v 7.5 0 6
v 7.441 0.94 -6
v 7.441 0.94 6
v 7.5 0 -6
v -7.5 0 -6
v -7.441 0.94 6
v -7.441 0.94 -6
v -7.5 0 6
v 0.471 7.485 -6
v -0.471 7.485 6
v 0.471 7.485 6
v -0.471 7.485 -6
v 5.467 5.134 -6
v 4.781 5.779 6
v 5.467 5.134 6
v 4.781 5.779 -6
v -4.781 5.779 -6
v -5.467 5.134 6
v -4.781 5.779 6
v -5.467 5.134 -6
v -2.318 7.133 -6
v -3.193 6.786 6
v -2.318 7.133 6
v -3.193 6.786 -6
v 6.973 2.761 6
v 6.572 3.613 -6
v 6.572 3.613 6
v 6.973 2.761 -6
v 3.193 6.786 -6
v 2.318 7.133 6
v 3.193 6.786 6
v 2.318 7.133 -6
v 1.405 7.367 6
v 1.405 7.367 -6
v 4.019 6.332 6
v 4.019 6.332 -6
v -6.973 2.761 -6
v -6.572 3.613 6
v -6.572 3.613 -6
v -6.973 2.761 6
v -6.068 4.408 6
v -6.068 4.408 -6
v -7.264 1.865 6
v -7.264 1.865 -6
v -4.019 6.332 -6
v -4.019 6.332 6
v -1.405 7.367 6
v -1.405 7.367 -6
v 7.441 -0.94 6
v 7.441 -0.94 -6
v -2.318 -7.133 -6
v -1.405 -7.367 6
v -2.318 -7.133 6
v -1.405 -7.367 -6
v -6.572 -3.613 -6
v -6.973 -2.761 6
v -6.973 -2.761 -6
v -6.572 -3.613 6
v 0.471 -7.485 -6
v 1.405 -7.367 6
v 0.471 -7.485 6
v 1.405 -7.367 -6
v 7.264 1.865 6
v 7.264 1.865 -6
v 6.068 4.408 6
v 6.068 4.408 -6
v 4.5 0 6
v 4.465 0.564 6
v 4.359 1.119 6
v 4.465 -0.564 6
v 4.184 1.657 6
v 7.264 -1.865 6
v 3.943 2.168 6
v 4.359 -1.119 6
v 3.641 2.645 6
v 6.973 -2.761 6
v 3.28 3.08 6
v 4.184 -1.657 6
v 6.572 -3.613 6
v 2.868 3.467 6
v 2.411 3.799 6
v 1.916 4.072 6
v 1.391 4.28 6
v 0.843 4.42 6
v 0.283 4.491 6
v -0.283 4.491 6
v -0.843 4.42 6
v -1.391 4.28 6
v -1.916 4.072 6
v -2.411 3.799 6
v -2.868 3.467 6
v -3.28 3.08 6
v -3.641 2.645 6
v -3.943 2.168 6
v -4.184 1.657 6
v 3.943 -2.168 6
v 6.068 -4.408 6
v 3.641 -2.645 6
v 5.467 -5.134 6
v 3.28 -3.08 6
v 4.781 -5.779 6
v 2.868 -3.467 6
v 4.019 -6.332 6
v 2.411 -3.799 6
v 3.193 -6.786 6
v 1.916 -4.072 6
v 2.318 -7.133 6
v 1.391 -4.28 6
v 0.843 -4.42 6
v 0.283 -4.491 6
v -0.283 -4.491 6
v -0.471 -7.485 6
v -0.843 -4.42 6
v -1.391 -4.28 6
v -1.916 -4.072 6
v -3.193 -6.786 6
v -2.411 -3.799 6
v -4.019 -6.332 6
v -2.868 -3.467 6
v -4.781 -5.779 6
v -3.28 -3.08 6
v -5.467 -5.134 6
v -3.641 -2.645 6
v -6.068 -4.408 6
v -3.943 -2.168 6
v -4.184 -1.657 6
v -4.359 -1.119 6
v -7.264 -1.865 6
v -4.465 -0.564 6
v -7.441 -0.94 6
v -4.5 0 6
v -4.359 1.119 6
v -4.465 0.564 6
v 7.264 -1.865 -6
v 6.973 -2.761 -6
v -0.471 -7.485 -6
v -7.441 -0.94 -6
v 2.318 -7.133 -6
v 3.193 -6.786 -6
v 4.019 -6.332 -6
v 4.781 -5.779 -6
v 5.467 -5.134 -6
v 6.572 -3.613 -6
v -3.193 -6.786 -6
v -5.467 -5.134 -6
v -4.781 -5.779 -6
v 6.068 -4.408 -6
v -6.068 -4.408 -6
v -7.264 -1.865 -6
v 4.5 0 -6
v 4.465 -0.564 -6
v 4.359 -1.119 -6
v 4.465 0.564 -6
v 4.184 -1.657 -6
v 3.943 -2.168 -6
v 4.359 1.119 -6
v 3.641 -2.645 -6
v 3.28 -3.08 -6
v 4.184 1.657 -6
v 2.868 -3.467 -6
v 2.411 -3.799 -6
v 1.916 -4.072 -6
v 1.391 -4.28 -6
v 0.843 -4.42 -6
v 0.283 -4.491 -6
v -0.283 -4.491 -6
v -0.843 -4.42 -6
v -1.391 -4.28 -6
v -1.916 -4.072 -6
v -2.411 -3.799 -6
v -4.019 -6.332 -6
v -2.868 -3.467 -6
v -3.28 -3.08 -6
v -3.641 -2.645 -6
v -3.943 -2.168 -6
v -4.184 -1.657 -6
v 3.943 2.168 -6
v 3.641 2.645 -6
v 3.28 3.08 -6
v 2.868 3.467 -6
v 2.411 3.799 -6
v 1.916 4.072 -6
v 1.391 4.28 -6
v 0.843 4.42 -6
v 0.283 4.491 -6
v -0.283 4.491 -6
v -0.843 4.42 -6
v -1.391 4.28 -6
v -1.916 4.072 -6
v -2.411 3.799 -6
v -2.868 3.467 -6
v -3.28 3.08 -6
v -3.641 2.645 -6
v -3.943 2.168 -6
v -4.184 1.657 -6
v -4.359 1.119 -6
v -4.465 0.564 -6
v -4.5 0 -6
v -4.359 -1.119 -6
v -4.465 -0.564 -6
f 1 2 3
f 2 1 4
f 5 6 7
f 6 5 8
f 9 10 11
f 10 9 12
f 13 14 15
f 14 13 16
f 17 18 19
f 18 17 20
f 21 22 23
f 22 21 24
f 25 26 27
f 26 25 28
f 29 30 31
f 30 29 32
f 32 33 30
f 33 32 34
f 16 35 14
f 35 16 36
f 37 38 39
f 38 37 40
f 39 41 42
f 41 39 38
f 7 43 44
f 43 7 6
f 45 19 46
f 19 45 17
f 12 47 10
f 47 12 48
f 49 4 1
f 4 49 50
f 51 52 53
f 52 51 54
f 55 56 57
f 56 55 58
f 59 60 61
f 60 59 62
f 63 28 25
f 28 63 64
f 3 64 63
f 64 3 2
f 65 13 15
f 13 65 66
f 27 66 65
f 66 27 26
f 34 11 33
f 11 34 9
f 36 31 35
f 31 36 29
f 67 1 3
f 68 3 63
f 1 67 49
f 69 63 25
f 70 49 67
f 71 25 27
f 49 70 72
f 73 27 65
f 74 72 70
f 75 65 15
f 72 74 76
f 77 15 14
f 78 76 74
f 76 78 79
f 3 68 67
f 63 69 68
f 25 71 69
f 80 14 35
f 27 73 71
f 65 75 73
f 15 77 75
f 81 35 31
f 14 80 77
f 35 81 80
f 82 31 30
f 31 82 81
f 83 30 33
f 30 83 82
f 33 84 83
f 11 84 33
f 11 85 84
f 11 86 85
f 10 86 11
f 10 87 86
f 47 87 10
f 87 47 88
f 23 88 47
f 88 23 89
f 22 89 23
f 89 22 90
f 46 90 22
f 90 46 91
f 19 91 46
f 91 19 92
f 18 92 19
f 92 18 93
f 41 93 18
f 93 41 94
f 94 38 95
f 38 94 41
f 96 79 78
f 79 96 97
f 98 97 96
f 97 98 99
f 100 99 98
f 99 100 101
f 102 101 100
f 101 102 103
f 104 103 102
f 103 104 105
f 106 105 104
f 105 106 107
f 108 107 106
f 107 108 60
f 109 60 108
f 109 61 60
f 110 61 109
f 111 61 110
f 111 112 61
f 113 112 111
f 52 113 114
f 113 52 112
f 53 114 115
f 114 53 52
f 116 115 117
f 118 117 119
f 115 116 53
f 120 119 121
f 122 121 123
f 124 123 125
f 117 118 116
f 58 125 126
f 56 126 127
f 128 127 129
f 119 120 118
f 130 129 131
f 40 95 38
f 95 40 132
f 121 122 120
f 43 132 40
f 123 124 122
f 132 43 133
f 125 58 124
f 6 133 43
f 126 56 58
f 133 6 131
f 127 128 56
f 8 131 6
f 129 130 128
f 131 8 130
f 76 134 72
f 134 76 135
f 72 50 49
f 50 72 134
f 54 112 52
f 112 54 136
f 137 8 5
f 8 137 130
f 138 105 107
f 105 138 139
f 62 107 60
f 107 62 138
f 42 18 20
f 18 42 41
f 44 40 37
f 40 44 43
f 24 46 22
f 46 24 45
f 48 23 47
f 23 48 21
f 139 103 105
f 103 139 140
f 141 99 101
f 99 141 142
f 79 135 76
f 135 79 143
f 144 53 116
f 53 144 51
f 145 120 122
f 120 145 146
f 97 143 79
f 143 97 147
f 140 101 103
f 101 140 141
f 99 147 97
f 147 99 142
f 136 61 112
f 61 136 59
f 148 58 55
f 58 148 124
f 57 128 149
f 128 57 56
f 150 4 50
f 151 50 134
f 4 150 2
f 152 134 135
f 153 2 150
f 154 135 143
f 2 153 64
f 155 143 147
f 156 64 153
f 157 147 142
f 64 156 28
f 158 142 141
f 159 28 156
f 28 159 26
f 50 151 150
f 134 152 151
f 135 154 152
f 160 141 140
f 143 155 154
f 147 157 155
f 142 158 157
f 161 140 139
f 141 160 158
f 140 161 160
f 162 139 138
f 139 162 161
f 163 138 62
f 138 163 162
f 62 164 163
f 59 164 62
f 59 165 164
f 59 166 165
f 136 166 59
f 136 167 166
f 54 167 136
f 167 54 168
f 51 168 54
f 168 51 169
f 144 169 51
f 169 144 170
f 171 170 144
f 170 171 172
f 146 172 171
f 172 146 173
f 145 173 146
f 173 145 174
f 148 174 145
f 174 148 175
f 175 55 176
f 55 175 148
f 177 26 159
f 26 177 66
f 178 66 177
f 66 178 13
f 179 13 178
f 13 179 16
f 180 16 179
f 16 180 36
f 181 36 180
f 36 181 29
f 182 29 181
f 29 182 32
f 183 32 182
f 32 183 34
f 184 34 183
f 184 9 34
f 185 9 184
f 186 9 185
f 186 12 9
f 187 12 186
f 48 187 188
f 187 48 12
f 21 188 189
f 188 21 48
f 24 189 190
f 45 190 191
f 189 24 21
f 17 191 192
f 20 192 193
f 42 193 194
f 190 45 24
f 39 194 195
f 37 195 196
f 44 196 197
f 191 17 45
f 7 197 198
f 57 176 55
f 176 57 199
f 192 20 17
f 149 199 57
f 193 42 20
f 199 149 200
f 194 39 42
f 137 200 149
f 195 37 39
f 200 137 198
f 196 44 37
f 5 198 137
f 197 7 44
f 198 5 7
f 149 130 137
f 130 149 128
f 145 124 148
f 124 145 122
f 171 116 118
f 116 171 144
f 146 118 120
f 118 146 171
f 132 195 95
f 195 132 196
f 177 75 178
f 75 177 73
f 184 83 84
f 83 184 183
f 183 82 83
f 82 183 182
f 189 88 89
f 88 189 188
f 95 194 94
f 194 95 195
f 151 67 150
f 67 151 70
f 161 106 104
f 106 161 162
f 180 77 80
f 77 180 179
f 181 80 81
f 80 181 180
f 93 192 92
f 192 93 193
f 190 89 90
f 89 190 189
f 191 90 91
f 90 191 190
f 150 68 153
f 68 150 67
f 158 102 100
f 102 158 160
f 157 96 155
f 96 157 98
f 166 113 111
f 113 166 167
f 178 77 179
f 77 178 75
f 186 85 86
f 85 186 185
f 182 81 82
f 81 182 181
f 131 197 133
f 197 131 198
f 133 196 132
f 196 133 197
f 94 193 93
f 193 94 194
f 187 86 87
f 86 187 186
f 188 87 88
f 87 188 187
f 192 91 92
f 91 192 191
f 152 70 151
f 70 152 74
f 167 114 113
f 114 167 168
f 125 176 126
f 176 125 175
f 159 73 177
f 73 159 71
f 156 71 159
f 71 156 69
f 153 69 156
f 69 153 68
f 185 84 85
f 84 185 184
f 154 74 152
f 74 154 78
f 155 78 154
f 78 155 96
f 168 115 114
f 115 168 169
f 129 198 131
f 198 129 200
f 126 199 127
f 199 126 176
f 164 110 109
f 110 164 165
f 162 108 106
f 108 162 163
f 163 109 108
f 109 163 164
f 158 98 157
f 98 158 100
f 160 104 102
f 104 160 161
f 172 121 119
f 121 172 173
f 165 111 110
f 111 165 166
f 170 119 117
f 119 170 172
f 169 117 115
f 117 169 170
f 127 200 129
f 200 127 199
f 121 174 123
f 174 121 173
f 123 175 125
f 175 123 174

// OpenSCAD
$fn = 50;


difference() {
	union() {
		translate(v = [0, 0, -6.0000000000]) {
			cylinder(h = 12, r = 7.5000000000);
		}
	}
	union() {
		translate(v = [0, 0, -100.0000000000]) {
			cylinder(h = 200, r = 4.5000000000);
		}
	}
}
